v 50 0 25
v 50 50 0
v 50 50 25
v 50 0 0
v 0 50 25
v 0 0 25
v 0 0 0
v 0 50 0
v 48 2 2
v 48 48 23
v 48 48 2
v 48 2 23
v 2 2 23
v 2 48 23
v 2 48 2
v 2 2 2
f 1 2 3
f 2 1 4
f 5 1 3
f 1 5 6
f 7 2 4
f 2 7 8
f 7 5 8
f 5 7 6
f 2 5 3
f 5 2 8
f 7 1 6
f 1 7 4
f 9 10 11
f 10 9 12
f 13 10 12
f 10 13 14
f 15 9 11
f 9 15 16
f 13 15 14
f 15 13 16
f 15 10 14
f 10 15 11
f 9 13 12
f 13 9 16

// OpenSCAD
module interlocking_piece(width, height, depth, hole_diameter, wall_thickness) {
  difference() {
    cube([width, height, depth]);
    translate([wall_thickness, wall_thickness, wall_thickness])
    cube([width - 2 * wall_thickness, height - 2 * wall_thickness, depth - 2 * wall_thickness]);

    if (hole_diameter > 0) {
      translate([width/2 - hole_diameter/2, height/2 - hole_diameter/2, depth/2 - hole_diameter/2])
      cylinder(h=hole_diameter, r=hole_diameter/2);
    }
  }
}

interlocking_piece(width=50, height=50, depth=25, hole_diameter=8, wall_thickness=2);
